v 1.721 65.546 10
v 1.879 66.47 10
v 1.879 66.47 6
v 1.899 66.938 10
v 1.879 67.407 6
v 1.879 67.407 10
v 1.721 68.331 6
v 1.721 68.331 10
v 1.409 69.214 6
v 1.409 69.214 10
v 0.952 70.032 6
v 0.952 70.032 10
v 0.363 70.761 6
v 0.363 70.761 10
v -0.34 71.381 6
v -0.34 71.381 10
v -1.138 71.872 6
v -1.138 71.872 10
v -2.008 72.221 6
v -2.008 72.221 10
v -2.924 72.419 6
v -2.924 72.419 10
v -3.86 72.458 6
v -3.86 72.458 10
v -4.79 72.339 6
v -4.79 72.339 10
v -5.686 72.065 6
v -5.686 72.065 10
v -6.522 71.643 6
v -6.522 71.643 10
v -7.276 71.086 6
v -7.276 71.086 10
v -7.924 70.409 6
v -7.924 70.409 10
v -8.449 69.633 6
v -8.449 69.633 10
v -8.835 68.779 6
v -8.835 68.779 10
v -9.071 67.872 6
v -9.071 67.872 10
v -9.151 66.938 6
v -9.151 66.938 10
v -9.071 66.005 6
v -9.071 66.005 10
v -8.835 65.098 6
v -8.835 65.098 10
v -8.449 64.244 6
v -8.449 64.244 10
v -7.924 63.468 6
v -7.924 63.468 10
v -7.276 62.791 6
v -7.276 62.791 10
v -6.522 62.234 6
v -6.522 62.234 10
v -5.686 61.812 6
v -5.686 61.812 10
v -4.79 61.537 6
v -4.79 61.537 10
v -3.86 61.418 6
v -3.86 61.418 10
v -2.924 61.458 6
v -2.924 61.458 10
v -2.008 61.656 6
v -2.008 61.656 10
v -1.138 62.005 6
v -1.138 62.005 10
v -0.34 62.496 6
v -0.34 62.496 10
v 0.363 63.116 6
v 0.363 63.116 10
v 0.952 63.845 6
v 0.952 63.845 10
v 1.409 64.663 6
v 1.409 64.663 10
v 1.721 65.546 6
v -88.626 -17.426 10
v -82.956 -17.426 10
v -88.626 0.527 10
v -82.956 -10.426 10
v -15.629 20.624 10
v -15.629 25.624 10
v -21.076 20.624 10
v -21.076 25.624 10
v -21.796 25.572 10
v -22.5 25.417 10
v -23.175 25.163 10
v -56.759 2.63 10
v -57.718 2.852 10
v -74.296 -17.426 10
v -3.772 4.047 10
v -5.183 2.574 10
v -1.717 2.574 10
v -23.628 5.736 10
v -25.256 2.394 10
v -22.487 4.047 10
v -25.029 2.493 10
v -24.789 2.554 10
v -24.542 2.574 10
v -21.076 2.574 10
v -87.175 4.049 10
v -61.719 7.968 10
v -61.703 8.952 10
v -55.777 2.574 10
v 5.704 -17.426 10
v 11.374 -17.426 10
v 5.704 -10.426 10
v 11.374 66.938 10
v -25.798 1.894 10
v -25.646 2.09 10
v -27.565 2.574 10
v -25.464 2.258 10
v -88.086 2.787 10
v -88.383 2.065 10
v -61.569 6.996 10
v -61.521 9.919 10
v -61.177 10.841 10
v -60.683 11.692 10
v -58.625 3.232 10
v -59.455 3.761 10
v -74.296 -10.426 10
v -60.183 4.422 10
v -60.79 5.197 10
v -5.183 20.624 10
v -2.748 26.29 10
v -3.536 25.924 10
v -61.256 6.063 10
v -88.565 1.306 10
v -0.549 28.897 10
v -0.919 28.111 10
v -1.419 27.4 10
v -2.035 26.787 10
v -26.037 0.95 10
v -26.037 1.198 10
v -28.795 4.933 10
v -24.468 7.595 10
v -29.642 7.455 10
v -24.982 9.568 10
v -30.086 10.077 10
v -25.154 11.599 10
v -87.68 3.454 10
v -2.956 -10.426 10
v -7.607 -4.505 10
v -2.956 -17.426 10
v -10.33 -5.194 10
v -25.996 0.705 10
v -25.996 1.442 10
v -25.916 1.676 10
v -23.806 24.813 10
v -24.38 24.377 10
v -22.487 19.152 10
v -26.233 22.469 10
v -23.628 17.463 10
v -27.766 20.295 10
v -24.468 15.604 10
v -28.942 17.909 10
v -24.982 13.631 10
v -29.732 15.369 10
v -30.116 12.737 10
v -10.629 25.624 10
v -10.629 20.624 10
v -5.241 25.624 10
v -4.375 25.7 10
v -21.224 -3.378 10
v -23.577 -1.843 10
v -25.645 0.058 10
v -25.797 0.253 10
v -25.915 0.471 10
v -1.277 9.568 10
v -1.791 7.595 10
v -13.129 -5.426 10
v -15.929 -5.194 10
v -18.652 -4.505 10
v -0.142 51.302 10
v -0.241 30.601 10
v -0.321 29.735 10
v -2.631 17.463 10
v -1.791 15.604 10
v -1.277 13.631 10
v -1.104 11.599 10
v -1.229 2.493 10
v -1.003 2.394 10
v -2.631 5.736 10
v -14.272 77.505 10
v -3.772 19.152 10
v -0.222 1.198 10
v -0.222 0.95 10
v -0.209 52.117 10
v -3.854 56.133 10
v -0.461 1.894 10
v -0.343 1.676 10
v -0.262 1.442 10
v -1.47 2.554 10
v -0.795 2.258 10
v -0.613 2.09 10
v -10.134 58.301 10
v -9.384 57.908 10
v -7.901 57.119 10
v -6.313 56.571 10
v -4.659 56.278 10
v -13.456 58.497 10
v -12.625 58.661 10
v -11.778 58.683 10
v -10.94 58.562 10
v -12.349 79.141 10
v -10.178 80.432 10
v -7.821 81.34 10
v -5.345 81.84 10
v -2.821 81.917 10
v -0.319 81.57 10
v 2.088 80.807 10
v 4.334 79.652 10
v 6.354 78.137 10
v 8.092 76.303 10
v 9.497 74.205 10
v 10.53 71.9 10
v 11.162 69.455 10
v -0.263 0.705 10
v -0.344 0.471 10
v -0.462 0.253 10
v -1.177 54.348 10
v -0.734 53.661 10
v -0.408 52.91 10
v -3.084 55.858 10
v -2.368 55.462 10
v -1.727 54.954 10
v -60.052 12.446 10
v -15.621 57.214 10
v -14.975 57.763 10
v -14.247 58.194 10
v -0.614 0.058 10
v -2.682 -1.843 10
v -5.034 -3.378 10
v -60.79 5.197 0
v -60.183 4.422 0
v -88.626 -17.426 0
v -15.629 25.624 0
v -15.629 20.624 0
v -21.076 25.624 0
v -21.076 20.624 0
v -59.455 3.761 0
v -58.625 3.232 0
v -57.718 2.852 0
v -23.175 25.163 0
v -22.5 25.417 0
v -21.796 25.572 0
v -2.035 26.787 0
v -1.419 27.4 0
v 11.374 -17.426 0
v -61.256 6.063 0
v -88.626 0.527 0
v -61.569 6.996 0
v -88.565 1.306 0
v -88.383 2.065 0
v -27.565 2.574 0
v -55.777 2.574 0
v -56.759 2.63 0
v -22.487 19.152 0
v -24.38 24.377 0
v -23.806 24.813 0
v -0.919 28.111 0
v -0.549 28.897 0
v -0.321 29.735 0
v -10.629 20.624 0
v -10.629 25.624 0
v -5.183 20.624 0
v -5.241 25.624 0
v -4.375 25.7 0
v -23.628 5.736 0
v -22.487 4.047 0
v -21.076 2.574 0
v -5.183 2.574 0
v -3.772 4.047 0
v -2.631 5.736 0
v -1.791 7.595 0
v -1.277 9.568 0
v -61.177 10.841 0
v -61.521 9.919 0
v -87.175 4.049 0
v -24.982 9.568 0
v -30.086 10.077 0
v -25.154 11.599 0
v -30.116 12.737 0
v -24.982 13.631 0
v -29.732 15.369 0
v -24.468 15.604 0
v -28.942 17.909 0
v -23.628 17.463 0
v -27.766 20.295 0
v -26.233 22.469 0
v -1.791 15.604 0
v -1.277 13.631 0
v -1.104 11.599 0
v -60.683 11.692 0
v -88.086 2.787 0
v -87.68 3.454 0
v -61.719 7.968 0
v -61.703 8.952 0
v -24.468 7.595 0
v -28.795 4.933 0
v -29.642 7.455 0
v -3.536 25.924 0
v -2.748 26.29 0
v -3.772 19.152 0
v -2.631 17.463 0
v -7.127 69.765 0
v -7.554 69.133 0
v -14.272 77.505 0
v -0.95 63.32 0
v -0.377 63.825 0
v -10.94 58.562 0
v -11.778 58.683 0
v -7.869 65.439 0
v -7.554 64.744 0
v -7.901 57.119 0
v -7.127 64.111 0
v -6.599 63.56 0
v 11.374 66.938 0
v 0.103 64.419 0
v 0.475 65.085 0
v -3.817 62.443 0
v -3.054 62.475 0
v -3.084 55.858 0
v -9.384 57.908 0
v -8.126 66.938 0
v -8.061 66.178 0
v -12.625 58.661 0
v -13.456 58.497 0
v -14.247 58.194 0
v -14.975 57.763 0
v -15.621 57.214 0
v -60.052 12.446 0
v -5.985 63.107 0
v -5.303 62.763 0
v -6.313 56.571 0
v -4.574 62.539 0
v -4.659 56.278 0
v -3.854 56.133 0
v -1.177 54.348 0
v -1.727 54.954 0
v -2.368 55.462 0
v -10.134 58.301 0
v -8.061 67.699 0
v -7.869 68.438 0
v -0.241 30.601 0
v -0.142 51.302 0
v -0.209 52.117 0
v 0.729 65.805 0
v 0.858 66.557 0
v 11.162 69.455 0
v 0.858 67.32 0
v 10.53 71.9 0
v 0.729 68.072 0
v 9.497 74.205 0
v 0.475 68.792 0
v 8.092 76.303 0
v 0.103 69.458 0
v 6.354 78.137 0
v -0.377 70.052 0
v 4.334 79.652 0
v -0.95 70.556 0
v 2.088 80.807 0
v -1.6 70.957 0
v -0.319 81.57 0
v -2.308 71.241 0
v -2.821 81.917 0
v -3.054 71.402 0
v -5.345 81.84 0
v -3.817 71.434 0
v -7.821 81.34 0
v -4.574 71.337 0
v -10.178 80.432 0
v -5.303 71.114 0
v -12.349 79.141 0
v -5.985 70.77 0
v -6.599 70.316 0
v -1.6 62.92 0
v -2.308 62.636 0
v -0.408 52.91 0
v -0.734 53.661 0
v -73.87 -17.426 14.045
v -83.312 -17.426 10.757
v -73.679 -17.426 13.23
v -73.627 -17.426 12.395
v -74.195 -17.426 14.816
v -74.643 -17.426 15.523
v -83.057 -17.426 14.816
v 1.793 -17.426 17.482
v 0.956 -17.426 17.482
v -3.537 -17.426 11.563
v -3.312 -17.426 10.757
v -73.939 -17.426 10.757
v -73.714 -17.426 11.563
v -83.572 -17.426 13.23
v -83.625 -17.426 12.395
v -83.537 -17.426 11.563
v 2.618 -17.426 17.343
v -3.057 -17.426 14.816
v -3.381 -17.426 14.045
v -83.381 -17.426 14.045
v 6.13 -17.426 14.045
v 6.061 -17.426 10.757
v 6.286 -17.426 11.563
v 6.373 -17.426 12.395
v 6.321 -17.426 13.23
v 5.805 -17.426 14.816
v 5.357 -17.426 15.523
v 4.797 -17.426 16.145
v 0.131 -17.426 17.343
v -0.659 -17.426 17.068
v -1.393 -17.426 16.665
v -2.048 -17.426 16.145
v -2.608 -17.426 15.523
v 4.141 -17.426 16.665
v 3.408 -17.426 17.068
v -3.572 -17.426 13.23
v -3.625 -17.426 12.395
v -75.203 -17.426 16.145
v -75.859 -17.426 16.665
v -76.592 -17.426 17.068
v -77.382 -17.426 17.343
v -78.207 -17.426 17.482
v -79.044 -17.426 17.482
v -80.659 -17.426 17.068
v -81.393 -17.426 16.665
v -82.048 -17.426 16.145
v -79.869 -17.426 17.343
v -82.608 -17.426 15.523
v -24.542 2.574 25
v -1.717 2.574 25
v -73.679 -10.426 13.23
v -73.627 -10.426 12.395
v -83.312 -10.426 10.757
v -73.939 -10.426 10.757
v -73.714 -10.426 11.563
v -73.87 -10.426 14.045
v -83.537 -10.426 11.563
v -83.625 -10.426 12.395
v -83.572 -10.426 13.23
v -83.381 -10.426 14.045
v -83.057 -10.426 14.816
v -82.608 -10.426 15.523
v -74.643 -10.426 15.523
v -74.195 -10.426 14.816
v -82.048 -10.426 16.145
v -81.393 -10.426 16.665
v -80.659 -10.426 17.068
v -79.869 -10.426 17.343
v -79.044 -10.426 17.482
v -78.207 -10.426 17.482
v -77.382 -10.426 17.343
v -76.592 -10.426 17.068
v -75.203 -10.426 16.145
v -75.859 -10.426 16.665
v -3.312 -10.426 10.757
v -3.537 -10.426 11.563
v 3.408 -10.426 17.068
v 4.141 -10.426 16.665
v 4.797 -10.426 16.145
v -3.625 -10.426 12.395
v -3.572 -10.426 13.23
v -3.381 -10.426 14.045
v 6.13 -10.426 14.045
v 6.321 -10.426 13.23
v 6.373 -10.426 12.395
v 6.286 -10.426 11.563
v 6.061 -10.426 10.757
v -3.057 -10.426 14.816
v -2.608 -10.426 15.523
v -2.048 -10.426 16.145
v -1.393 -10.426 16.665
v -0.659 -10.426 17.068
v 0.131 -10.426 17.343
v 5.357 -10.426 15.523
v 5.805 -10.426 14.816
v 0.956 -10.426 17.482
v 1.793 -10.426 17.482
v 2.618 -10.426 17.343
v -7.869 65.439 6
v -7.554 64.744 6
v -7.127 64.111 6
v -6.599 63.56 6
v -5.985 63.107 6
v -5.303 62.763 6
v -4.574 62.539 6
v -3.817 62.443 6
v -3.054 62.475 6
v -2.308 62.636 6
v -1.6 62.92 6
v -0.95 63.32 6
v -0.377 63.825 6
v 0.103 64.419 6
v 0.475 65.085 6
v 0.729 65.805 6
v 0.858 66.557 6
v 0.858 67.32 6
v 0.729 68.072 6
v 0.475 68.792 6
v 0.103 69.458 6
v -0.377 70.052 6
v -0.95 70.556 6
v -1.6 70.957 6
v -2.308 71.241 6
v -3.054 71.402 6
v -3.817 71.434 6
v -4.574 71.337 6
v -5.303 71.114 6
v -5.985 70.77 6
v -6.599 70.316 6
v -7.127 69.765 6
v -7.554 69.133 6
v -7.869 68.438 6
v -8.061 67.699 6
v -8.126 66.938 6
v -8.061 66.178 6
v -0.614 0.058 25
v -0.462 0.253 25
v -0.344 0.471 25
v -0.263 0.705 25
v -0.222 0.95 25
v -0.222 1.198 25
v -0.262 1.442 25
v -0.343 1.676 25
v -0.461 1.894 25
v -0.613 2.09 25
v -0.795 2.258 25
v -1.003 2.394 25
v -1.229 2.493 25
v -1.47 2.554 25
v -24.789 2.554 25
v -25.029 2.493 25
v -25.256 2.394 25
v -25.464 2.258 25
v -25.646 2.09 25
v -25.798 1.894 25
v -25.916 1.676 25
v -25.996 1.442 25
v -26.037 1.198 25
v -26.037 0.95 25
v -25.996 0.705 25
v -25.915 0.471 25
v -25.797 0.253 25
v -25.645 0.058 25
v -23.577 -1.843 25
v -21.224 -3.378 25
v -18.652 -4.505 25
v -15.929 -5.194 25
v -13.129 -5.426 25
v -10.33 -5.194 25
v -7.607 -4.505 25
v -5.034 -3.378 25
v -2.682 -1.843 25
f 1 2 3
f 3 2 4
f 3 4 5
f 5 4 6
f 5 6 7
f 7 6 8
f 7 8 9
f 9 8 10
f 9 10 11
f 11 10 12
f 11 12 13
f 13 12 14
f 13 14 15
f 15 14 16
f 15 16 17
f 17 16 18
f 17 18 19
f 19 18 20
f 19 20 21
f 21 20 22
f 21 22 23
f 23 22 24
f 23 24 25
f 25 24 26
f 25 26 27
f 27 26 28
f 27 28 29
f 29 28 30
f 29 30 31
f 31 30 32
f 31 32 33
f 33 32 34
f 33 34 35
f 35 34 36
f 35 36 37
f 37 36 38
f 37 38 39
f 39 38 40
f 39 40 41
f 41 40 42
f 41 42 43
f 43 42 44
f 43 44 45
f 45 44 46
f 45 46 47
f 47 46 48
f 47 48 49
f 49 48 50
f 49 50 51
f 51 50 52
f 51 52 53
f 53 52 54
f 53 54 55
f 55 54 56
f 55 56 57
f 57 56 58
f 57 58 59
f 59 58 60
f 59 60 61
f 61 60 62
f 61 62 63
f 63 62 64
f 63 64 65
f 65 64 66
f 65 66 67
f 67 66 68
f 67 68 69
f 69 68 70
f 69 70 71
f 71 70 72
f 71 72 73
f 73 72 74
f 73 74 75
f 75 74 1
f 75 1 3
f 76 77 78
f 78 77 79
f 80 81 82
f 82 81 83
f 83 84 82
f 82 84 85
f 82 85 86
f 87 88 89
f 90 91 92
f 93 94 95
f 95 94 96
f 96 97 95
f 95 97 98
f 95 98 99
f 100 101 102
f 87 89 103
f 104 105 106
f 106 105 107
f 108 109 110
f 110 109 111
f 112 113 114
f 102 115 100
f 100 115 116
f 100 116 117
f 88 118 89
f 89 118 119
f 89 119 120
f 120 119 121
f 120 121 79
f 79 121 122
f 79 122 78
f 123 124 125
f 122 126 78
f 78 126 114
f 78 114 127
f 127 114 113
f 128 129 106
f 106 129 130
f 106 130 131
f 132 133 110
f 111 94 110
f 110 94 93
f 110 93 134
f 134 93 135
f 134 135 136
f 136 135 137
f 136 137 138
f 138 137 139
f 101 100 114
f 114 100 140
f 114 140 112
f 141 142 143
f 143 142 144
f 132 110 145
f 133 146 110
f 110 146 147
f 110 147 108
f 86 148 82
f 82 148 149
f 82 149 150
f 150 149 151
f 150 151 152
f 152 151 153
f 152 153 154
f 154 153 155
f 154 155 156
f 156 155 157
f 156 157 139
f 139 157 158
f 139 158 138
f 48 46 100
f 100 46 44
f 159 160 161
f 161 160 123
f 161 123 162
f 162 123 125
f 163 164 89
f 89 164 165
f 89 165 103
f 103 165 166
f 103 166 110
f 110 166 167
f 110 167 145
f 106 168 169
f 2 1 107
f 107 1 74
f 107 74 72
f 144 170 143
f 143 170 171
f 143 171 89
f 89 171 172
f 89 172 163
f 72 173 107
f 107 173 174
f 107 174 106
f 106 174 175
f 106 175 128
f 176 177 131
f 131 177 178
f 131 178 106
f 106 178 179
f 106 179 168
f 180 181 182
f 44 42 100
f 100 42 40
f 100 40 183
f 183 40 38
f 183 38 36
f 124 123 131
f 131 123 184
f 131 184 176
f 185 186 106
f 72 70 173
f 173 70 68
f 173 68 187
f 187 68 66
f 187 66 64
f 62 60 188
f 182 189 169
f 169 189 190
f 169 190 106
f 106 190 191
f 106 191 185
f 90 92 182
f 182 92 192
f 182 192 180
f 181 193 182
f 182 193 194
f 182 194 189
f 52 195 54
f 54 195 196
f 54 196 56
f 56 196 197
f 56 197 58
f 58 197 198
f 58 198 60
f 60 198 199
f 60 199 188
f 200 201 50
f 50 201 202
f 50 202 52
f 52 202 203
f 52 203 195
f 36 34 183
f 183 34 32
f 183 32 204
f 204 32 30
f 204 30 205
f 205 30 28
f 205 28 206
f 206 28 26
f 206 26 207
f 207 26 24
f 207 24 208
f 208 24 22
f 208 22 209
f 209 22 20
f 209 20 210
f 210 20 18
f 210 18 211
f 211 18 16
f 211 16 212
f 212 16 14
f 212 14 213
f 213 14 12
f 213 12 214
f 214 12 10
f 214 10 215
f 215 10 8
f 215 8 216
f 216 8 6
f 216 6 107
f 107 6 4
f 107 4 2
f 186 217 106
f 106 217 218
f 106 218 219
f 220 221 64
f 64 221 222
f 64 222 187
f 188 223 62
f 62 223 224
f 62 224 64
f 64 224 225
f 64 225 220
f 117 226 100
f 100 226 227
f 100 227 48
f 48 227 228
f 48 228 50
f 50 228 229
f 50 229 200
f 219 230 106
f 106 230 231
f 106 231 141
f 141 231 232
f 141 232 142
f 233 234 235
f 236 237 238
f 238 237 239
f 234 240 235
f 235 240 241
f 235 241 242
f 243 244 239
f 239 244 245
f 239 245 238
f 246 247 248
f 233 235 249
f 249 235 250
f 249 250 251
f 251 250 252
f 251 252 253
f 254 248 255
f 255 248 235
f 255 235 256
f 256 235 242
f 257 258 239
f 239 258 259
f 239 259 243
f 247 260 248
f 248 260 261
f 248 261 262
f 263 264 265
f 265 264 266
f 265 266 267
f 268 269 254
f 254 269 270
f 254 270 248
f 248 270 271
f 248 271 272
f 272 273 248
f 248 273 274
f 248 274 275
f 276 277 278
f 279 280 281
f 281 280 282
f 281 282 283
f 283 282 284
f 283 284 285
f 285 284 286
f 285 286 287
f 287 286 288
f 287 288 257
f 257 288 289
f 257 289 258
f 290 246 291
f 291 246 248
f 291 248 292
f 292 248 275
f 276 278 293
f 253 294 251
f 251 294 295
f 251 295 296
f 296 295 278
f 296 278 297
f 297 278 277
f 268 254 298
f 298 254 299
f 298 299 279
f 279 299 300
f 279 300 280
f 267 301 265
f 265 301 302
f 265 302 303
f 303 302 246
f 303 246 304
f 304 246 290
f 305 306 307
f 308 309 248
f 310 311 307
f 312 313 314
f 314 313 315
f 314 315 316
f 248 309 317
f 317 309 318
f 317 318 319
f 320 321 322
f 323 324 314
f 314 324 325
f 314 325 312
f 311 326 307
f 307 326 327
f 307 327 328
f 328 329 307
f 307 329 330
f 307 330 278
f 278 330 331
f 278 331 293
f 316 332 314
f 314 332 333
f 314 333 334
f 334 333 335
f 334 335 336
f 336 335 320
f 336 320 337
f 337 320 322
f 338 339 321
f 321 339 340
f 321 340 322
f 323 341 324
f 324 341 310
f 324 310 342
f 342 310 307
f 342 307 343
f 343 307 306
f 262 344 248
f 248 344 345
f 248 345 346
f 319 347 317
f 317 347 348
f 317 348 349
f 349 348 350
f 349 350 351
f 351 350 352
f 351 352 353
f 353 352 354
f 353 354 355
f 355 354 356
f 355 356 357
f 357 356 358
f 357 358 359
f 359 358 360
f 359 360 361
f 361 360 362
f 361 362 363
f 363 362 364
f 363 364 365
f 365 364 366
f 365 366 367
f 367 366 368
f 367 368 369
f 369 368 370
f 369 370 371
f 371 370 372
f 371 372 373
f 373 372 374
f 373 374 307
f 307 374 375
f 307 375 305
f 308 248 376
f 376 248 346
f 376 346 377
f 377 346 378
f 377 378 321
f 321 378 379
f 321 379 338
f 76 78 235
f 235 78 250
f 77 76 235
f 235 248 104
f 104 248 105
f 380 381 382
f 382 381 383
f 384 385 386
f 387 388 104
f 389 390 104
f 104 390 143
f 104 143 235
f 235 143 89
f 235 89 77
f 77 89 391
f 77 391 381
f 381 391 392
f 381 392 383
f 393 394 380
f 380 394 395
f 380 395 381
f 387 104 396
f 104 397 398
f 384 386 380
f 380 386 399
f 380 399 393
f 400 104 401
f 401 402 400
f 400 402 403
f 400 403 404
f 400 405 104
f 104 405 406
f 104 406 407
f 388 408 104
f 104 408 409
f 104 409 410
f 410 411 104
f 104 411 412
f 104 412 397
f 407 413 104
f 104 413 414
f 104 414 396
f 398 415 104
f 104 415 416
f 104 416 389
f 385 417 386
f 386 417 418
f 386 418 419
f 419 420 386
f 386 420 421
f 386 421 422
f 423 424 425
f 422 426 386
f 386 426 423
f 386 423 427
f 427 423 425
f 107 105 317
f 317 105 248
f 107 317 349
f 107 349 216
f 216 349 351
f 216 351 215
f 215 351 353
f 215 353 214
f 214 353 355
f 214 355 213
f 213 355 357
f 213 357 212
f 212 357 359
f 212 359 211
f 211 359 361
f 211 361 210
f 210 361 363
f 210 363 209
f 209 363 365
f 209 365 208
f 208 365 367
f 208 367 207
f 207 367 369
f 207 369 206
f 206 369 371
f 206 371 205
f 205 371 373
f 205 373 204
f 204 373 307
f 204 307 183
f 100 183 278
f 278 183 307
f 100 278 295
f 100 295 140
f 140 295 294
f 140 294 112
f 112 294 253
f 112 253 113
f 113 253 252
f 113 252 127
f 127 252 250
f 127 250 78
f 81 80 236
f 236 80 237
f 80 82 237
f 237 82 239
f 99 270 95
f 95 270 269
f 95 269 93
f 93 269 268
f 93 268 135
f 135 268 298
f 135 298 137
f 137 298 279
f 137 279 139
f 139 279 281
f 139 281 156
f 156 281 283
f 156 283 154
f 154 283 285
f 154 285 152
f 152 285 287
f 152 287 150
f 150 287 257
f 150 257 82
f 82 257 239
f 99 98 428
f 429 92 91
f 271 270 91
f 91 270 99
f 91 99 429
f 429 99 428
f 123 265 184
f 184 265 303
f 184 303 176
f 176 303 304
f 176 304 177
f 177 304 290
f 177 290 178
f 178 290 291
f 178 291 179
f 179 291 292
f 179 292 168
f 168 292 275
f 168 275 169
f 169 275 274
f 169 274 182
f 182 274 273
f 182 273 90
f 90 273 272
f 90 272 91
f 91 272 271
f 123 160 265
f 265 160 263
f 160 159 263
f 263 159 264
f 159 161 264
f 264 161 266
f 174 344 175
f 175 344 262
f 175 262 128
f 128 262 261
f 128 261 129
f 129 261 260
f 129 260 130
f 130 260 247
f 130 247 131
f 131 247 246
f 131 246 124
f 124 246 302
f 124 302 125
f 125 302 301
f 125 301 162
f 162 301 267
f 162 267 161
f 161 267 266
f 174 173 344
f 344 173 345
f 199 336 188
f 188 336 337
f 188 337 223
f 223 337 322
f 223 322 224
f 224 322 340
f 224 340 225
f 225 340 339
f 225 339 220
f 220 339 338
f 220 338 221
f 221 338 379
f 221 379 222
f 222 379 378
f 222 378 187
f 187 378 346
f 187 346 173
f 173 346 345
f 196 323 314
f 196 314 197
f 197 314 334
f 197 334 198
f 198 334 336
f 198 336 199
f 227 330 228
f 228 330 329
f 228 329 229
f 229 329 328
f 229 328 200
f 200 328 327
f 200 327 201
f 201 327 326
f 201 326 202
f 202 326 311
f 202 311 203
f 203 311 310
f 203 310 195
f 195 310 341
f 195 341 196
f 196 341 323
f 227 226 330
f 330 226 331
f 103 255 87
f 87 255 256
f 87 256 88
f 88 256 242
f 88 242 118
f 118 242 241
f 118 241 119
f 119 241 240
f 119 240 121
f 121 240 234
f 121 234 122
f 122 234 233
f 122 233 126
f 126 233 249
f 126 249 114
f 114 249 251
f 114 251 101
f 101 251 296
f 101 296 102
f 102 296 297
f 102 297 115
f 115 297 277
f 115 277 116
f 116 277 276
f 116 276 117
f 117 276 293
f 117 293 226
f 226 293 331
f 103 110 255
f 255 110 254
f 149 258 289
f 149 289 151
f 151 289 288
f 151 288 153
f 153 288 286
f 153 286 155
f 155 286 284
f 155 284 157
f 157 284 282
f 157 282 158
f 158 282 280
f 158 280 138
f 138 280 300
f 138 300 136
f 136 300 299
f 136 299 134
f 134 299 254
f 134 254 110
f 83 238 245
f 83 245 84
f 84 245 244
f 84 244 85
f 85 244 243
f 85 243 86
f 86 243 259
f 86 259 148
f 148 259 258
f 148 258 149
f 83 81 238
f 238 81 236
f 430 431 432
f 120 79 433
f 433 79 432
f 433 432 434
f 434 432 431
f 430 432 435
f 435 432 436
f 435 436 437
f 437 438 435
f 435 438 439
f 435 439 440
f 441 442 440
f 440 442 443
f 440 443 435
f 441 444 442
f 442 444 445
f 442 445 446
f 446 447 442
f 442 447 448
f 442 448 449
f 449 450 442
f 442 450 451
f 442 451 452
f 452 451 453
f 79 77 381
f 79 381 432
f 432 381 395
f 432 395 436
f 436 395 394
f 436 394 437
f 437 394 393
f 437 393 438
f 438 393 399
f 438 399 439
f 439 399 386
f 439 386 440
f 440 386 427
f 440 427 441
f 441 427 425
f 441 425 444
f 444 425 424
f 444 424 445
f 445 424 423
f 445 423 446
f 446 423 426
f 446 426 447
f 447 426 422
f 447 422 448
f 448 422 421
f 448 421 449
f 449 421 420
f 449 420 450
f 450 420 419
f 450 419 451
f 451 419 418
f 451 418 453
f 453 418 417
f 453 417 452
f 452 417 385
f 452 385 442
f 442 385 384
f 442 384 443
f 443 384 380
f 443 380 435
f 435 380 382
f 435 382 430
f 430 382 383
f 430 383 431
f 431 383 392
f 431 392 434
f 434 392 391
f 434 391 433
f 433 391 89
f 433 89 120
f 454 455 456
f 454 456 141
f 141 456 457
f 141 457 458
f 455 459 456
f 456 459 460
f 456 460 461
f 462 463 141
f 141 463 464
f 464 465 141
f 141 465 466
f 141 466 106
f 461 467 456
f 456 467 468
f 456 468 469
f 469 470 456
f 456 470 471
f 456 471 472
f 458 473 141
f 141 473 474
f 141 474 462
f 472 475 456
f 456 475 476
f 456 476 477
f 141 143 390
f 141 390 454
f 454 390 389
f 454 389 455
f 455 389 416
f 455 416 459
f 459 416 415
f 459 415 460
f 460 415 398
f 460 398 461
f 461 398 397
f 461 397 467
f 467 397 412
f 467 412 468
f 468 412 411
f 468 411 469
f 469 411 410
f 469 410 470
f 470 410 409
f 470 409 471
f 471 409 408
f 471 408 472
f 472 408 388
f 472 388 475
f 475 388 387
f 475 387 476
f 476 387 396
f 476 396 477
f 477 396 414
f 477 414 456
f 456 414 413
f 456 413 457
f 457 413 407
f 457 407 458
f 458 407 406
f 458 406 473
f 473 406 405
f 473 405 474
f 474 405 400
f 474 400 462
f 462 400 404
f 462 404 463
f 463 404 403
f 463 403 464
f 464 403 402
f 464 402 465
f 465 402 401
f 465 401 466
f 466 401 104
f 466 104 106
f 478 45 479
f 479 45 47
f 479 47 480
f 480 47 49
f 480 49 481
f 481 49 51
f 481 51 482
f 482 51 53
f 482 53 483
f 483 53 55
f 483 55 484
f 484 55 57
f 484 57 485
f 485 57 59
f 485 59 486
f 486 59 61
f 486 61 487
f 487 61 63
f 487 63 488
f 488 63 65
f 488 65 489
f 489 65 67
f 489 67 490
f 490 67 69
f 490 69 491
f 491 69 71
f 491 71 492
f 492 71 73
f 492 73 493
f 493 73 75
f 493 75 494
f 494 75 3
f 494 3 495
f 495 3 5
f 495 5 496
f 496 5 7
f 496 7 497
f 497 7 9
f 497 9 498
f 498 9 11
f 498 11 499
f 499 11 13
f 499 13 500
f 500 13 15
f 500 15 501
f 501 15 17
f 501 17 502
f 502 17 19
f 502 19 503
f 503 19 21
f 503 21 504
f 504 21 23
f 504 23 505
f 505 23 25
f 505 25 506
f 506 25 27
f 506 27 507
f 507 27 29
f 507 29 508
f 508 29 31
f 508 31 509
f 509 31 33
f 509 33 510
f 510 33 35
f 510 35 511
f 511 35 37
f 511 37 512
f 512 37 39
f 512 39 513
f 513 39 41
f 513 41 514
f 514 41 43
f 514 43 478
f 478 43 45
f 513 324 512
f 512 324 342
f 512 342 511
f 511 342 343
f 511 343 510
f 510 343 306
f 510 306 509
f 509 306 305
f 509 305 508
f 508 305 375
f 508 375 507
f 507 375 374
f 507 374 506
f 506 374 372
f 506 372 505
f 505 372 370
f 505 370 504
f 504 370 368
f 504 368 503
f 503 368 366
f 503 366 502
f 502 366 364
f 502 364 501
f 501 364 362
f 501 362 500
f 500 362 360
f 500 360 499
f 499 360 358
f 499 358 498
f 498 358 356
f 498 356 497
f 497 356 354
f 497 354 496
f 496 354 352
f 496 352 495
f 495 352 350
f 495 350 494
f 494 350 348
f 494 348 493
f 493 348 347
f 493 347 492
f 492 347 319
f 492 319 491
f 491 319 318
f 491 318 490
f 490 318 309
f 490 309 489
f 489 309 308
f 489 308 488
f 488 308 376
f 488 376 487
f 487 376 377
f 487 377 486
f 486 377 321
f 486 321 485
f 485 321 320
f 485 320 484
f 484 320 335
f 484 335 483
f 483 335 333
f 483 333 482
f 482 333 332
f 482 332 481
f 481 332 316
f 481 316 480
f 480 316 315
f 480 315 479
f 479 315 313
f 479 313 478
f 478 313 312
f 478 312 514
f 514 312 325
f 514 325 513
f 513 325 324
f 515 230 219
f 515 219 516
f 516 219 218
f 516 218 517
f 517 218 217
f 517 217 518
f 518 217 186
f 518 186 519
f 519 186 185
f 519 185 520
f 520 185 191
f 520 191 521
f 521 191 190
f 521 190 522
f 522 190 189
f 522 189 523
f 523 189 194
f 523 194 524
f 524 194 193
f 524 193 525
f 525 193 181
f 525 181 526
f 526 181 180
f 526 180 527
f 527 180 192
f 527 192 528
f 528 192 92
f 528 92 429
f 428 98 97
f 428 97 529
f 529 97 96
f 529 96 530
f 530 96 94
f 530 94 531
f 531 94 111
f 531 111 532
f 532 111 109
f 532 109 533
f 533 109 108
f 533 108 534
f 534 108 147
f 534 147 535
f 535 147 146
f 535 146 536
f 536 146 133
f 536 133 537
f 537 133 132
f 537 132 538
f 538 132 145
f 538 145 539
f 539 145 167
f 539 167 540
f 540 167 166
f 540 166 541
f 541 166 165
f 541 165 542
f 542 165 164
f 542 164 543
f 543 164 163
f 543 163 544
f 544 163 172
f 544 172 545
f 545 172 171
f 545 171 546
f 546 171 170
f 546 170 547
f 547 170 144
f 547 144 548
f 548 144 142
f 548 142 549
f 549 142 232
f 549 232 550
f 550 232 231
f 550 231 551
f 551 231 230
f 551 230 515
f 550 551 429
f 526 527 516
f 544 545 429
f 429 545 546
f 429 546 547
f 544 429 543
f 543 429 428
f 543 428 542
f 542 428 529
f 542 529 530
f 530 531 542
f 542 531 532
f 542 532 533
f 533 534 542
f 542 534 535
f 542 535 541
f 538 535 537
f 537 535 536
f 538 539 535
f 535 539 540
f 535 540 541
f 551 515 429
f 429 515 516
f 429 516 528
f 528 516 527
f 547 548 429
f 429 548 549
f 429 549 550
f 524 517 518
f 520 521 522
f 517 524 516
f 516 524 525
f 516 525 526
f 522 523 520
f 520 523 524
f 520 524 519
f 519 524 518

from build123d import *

# Parameters (mm, degrees)
SKETCH2_R           = 5.525
BOSS_EXTRUDE1_DEPTH = 10
SKETCH4_R           = 5
BOSS_EXTRUDE3_DEPTH = 7
SKETCH5_R           = 5.525
SKETCH5_R_2         = 4.5
BOSS_EXTRUDE4_DEPTH = 6
BOSS_EXTRUDE5_DEPTH = 15


with BuildPart() as part:
    # Sketch2 → Boss-Extrude1 (new body)
    with BuildSketch(Plane.XY):
        with BuildLine():
            Line((-88.62562975, -17.425503603), (11.37437025, -17.425503603))
            Line((11.37437025, -17.425503603), (11.37437025, 2.574496397))
            Line((11.37437025, 2.574496397), (11.37437025, 66.938471641))
            ThreePointArc((11.37437025, 66.938471641), (2.08841102, 80.807492446), (-14.272261494, 77.504891684))
            Line((-14.272261494, 77.504891684), (-87.174506998, 4.049231386))
            ThreePointArc((-87.174506998, 4.049231386), (-88.248636685, 2.431771629), (-88.62562975, 0.527091372))
            Line((-88.62562975, 0.527091372), (-88.62562975, -17.425503603))
        make_face()
        with Locations((-3.62562975, 66.938471641)):
            Circle(SKETCH2_R, mode=Mode.SUBTRACT)
        with BuildLine():
            Line((-15.629426982, 20.624496397), (-21.07612441, 20.624496397))
            ThreePointArc((-21.07612441, 20.624496397), (-25.154426982, 11.599496397), (-21.07612441, 2.574496397))
            Line((-21.07612441, 2.574496397), (-5.182729555, 2.574496397))
            ThreePointArc((-5.182729555, 2.574496397), (-1.104426982, 11.599496397), (-5.182729555, 20.624496397))
            Line((-5.182729555, 20.624496397), (-10.629426982, 20.624496397))
            Line((-10.629426982, 20.624496397), (-10.629426982, 25.624496397))
            Line((-10.629426982, 25.624496397), (-5.241089336, 25.624496397))
            ThreePointArc((-5.241089336, 25.624496397), (-1.714029472, 27.080508712), (-0.241146646, 30.600556911))
            Line((-0.241146646, 30.600556911), (-0.142030474, 51.301718396))
            ThreePointArc((-0.142030474, 51.301718396), (-1.43979486, 54.662291481), (-4.659411057, 56.278371739))
            ThreePointArc((-4.659411057, 56.278371739), (-7.11800033, 56.813760216), (-9.38382576, 57.907989239))
            ThreePointArc((-9.38382576, 57.907989239), (-12.624755601, 58.661476378), (-15.620909093, 57.214260654))
            Line((-15.620909093, 57.214260654), (-60.051592087, 12.446295905))
            ThreePointArc((-60.051592087, 12.446295905), (-61.255836785, 6.063207717), (-55.776519908, 2.574496397))
            Line((-55.776519908, 2.574496397), (-27.565492929, 2.574496397))
            ThreePointArc((-27.565492929, 2.574496397), (-29.975609484, 14.060544979), (-24.380364504, 24.37709515))
            ThreePointArc((-24.380364504, 24.37709515), (-22.842052811, 25.302262625), (-21.07612441, 25.624496397))
            Line((-21.07612441, 25.624496397), (-15.629426982, 25.624496397))
            Line((-15.629426982, 25.624496397), (-15.629426982, 20.624496397))
        make_face(mode=Mode.SUBTRACT)
    extrude(amount=BOSS_EXTRUDE1_DEPTH)

    # Sketch4 → Boss-Extrude3 (add)
    with BuildSketch(Plane.XZ.offset(17.425503603)):
        with BuildLine():
            ThreePointArc((6.37437025, 12.5), (0.080275025, 17.329629131), (-2.955756769, 10))
            Line((-2.955756769, 10), (5.704497269, 10))
            ThreePointArc((5.704497269, 10), (6.203999382, 11.205904774), (6.37437025, 12.5))
        make_face()
        with BuildLine():
            Line((5.704497269, 10), (-2.955756769, 10))
            ThreePointArc((-2.955756769, 10), (-1.125629745, 8.169872978), (1.374370261, 7.5))
            ThreePointArc((1.374370261, 7.5), (3.874370255, 8.169872984), (5.704497269, 10))
        make_face()
        with Locations((-78.62562975, 12.5)):
            Circle(SKETCH4_R)
    extrude(amount=-BOSS_EXTRUDE3_DEPTH)

    # Sketch5 → Boss-Extrude4 (add)
    with BuildSketch(Plane(origin=(0, 0, 0), x_dir=(-1, 0, 0), z_dir=(0, 0, -1))):
        with Locations((3.62562975, 66.938471641)):
            Circle(SKETCH5_R)
        with Locations((3.62562975, 66.938471641)):
            Circle(SKETCH5_R_2, mode=Mode.SUBTRACT)
    extrude(amount=-BOSS_EXTRUDE4_DEPTH)

    # Sketch6 → Boss-Extrude5 (add)
    with BuildSketch(Plane.XY.offset(10)):
        with BuildLine():
            Line((-24.542139193, 2.574496397), (-1.716714772, 2.574496397))
            ThreePointArc((-1.716714772, 2.574496397), (-0.342785676, 1.676425663), (-0.614037264, 0.057588185))
            ThreePointArc((-0.614037264, 0.057588185), (-13.129426982, -5.425503603), (-25.644816701, 0.057588185))
            ThreePointArc((-25.644816701, 0.057588185), (-25.916068288, 1.676425663), (-24.542139193, 2.574496397))
        make_face()
    extrude(amount=BOSS_EXTRUDE5_DEPTH)


solid = part.part
